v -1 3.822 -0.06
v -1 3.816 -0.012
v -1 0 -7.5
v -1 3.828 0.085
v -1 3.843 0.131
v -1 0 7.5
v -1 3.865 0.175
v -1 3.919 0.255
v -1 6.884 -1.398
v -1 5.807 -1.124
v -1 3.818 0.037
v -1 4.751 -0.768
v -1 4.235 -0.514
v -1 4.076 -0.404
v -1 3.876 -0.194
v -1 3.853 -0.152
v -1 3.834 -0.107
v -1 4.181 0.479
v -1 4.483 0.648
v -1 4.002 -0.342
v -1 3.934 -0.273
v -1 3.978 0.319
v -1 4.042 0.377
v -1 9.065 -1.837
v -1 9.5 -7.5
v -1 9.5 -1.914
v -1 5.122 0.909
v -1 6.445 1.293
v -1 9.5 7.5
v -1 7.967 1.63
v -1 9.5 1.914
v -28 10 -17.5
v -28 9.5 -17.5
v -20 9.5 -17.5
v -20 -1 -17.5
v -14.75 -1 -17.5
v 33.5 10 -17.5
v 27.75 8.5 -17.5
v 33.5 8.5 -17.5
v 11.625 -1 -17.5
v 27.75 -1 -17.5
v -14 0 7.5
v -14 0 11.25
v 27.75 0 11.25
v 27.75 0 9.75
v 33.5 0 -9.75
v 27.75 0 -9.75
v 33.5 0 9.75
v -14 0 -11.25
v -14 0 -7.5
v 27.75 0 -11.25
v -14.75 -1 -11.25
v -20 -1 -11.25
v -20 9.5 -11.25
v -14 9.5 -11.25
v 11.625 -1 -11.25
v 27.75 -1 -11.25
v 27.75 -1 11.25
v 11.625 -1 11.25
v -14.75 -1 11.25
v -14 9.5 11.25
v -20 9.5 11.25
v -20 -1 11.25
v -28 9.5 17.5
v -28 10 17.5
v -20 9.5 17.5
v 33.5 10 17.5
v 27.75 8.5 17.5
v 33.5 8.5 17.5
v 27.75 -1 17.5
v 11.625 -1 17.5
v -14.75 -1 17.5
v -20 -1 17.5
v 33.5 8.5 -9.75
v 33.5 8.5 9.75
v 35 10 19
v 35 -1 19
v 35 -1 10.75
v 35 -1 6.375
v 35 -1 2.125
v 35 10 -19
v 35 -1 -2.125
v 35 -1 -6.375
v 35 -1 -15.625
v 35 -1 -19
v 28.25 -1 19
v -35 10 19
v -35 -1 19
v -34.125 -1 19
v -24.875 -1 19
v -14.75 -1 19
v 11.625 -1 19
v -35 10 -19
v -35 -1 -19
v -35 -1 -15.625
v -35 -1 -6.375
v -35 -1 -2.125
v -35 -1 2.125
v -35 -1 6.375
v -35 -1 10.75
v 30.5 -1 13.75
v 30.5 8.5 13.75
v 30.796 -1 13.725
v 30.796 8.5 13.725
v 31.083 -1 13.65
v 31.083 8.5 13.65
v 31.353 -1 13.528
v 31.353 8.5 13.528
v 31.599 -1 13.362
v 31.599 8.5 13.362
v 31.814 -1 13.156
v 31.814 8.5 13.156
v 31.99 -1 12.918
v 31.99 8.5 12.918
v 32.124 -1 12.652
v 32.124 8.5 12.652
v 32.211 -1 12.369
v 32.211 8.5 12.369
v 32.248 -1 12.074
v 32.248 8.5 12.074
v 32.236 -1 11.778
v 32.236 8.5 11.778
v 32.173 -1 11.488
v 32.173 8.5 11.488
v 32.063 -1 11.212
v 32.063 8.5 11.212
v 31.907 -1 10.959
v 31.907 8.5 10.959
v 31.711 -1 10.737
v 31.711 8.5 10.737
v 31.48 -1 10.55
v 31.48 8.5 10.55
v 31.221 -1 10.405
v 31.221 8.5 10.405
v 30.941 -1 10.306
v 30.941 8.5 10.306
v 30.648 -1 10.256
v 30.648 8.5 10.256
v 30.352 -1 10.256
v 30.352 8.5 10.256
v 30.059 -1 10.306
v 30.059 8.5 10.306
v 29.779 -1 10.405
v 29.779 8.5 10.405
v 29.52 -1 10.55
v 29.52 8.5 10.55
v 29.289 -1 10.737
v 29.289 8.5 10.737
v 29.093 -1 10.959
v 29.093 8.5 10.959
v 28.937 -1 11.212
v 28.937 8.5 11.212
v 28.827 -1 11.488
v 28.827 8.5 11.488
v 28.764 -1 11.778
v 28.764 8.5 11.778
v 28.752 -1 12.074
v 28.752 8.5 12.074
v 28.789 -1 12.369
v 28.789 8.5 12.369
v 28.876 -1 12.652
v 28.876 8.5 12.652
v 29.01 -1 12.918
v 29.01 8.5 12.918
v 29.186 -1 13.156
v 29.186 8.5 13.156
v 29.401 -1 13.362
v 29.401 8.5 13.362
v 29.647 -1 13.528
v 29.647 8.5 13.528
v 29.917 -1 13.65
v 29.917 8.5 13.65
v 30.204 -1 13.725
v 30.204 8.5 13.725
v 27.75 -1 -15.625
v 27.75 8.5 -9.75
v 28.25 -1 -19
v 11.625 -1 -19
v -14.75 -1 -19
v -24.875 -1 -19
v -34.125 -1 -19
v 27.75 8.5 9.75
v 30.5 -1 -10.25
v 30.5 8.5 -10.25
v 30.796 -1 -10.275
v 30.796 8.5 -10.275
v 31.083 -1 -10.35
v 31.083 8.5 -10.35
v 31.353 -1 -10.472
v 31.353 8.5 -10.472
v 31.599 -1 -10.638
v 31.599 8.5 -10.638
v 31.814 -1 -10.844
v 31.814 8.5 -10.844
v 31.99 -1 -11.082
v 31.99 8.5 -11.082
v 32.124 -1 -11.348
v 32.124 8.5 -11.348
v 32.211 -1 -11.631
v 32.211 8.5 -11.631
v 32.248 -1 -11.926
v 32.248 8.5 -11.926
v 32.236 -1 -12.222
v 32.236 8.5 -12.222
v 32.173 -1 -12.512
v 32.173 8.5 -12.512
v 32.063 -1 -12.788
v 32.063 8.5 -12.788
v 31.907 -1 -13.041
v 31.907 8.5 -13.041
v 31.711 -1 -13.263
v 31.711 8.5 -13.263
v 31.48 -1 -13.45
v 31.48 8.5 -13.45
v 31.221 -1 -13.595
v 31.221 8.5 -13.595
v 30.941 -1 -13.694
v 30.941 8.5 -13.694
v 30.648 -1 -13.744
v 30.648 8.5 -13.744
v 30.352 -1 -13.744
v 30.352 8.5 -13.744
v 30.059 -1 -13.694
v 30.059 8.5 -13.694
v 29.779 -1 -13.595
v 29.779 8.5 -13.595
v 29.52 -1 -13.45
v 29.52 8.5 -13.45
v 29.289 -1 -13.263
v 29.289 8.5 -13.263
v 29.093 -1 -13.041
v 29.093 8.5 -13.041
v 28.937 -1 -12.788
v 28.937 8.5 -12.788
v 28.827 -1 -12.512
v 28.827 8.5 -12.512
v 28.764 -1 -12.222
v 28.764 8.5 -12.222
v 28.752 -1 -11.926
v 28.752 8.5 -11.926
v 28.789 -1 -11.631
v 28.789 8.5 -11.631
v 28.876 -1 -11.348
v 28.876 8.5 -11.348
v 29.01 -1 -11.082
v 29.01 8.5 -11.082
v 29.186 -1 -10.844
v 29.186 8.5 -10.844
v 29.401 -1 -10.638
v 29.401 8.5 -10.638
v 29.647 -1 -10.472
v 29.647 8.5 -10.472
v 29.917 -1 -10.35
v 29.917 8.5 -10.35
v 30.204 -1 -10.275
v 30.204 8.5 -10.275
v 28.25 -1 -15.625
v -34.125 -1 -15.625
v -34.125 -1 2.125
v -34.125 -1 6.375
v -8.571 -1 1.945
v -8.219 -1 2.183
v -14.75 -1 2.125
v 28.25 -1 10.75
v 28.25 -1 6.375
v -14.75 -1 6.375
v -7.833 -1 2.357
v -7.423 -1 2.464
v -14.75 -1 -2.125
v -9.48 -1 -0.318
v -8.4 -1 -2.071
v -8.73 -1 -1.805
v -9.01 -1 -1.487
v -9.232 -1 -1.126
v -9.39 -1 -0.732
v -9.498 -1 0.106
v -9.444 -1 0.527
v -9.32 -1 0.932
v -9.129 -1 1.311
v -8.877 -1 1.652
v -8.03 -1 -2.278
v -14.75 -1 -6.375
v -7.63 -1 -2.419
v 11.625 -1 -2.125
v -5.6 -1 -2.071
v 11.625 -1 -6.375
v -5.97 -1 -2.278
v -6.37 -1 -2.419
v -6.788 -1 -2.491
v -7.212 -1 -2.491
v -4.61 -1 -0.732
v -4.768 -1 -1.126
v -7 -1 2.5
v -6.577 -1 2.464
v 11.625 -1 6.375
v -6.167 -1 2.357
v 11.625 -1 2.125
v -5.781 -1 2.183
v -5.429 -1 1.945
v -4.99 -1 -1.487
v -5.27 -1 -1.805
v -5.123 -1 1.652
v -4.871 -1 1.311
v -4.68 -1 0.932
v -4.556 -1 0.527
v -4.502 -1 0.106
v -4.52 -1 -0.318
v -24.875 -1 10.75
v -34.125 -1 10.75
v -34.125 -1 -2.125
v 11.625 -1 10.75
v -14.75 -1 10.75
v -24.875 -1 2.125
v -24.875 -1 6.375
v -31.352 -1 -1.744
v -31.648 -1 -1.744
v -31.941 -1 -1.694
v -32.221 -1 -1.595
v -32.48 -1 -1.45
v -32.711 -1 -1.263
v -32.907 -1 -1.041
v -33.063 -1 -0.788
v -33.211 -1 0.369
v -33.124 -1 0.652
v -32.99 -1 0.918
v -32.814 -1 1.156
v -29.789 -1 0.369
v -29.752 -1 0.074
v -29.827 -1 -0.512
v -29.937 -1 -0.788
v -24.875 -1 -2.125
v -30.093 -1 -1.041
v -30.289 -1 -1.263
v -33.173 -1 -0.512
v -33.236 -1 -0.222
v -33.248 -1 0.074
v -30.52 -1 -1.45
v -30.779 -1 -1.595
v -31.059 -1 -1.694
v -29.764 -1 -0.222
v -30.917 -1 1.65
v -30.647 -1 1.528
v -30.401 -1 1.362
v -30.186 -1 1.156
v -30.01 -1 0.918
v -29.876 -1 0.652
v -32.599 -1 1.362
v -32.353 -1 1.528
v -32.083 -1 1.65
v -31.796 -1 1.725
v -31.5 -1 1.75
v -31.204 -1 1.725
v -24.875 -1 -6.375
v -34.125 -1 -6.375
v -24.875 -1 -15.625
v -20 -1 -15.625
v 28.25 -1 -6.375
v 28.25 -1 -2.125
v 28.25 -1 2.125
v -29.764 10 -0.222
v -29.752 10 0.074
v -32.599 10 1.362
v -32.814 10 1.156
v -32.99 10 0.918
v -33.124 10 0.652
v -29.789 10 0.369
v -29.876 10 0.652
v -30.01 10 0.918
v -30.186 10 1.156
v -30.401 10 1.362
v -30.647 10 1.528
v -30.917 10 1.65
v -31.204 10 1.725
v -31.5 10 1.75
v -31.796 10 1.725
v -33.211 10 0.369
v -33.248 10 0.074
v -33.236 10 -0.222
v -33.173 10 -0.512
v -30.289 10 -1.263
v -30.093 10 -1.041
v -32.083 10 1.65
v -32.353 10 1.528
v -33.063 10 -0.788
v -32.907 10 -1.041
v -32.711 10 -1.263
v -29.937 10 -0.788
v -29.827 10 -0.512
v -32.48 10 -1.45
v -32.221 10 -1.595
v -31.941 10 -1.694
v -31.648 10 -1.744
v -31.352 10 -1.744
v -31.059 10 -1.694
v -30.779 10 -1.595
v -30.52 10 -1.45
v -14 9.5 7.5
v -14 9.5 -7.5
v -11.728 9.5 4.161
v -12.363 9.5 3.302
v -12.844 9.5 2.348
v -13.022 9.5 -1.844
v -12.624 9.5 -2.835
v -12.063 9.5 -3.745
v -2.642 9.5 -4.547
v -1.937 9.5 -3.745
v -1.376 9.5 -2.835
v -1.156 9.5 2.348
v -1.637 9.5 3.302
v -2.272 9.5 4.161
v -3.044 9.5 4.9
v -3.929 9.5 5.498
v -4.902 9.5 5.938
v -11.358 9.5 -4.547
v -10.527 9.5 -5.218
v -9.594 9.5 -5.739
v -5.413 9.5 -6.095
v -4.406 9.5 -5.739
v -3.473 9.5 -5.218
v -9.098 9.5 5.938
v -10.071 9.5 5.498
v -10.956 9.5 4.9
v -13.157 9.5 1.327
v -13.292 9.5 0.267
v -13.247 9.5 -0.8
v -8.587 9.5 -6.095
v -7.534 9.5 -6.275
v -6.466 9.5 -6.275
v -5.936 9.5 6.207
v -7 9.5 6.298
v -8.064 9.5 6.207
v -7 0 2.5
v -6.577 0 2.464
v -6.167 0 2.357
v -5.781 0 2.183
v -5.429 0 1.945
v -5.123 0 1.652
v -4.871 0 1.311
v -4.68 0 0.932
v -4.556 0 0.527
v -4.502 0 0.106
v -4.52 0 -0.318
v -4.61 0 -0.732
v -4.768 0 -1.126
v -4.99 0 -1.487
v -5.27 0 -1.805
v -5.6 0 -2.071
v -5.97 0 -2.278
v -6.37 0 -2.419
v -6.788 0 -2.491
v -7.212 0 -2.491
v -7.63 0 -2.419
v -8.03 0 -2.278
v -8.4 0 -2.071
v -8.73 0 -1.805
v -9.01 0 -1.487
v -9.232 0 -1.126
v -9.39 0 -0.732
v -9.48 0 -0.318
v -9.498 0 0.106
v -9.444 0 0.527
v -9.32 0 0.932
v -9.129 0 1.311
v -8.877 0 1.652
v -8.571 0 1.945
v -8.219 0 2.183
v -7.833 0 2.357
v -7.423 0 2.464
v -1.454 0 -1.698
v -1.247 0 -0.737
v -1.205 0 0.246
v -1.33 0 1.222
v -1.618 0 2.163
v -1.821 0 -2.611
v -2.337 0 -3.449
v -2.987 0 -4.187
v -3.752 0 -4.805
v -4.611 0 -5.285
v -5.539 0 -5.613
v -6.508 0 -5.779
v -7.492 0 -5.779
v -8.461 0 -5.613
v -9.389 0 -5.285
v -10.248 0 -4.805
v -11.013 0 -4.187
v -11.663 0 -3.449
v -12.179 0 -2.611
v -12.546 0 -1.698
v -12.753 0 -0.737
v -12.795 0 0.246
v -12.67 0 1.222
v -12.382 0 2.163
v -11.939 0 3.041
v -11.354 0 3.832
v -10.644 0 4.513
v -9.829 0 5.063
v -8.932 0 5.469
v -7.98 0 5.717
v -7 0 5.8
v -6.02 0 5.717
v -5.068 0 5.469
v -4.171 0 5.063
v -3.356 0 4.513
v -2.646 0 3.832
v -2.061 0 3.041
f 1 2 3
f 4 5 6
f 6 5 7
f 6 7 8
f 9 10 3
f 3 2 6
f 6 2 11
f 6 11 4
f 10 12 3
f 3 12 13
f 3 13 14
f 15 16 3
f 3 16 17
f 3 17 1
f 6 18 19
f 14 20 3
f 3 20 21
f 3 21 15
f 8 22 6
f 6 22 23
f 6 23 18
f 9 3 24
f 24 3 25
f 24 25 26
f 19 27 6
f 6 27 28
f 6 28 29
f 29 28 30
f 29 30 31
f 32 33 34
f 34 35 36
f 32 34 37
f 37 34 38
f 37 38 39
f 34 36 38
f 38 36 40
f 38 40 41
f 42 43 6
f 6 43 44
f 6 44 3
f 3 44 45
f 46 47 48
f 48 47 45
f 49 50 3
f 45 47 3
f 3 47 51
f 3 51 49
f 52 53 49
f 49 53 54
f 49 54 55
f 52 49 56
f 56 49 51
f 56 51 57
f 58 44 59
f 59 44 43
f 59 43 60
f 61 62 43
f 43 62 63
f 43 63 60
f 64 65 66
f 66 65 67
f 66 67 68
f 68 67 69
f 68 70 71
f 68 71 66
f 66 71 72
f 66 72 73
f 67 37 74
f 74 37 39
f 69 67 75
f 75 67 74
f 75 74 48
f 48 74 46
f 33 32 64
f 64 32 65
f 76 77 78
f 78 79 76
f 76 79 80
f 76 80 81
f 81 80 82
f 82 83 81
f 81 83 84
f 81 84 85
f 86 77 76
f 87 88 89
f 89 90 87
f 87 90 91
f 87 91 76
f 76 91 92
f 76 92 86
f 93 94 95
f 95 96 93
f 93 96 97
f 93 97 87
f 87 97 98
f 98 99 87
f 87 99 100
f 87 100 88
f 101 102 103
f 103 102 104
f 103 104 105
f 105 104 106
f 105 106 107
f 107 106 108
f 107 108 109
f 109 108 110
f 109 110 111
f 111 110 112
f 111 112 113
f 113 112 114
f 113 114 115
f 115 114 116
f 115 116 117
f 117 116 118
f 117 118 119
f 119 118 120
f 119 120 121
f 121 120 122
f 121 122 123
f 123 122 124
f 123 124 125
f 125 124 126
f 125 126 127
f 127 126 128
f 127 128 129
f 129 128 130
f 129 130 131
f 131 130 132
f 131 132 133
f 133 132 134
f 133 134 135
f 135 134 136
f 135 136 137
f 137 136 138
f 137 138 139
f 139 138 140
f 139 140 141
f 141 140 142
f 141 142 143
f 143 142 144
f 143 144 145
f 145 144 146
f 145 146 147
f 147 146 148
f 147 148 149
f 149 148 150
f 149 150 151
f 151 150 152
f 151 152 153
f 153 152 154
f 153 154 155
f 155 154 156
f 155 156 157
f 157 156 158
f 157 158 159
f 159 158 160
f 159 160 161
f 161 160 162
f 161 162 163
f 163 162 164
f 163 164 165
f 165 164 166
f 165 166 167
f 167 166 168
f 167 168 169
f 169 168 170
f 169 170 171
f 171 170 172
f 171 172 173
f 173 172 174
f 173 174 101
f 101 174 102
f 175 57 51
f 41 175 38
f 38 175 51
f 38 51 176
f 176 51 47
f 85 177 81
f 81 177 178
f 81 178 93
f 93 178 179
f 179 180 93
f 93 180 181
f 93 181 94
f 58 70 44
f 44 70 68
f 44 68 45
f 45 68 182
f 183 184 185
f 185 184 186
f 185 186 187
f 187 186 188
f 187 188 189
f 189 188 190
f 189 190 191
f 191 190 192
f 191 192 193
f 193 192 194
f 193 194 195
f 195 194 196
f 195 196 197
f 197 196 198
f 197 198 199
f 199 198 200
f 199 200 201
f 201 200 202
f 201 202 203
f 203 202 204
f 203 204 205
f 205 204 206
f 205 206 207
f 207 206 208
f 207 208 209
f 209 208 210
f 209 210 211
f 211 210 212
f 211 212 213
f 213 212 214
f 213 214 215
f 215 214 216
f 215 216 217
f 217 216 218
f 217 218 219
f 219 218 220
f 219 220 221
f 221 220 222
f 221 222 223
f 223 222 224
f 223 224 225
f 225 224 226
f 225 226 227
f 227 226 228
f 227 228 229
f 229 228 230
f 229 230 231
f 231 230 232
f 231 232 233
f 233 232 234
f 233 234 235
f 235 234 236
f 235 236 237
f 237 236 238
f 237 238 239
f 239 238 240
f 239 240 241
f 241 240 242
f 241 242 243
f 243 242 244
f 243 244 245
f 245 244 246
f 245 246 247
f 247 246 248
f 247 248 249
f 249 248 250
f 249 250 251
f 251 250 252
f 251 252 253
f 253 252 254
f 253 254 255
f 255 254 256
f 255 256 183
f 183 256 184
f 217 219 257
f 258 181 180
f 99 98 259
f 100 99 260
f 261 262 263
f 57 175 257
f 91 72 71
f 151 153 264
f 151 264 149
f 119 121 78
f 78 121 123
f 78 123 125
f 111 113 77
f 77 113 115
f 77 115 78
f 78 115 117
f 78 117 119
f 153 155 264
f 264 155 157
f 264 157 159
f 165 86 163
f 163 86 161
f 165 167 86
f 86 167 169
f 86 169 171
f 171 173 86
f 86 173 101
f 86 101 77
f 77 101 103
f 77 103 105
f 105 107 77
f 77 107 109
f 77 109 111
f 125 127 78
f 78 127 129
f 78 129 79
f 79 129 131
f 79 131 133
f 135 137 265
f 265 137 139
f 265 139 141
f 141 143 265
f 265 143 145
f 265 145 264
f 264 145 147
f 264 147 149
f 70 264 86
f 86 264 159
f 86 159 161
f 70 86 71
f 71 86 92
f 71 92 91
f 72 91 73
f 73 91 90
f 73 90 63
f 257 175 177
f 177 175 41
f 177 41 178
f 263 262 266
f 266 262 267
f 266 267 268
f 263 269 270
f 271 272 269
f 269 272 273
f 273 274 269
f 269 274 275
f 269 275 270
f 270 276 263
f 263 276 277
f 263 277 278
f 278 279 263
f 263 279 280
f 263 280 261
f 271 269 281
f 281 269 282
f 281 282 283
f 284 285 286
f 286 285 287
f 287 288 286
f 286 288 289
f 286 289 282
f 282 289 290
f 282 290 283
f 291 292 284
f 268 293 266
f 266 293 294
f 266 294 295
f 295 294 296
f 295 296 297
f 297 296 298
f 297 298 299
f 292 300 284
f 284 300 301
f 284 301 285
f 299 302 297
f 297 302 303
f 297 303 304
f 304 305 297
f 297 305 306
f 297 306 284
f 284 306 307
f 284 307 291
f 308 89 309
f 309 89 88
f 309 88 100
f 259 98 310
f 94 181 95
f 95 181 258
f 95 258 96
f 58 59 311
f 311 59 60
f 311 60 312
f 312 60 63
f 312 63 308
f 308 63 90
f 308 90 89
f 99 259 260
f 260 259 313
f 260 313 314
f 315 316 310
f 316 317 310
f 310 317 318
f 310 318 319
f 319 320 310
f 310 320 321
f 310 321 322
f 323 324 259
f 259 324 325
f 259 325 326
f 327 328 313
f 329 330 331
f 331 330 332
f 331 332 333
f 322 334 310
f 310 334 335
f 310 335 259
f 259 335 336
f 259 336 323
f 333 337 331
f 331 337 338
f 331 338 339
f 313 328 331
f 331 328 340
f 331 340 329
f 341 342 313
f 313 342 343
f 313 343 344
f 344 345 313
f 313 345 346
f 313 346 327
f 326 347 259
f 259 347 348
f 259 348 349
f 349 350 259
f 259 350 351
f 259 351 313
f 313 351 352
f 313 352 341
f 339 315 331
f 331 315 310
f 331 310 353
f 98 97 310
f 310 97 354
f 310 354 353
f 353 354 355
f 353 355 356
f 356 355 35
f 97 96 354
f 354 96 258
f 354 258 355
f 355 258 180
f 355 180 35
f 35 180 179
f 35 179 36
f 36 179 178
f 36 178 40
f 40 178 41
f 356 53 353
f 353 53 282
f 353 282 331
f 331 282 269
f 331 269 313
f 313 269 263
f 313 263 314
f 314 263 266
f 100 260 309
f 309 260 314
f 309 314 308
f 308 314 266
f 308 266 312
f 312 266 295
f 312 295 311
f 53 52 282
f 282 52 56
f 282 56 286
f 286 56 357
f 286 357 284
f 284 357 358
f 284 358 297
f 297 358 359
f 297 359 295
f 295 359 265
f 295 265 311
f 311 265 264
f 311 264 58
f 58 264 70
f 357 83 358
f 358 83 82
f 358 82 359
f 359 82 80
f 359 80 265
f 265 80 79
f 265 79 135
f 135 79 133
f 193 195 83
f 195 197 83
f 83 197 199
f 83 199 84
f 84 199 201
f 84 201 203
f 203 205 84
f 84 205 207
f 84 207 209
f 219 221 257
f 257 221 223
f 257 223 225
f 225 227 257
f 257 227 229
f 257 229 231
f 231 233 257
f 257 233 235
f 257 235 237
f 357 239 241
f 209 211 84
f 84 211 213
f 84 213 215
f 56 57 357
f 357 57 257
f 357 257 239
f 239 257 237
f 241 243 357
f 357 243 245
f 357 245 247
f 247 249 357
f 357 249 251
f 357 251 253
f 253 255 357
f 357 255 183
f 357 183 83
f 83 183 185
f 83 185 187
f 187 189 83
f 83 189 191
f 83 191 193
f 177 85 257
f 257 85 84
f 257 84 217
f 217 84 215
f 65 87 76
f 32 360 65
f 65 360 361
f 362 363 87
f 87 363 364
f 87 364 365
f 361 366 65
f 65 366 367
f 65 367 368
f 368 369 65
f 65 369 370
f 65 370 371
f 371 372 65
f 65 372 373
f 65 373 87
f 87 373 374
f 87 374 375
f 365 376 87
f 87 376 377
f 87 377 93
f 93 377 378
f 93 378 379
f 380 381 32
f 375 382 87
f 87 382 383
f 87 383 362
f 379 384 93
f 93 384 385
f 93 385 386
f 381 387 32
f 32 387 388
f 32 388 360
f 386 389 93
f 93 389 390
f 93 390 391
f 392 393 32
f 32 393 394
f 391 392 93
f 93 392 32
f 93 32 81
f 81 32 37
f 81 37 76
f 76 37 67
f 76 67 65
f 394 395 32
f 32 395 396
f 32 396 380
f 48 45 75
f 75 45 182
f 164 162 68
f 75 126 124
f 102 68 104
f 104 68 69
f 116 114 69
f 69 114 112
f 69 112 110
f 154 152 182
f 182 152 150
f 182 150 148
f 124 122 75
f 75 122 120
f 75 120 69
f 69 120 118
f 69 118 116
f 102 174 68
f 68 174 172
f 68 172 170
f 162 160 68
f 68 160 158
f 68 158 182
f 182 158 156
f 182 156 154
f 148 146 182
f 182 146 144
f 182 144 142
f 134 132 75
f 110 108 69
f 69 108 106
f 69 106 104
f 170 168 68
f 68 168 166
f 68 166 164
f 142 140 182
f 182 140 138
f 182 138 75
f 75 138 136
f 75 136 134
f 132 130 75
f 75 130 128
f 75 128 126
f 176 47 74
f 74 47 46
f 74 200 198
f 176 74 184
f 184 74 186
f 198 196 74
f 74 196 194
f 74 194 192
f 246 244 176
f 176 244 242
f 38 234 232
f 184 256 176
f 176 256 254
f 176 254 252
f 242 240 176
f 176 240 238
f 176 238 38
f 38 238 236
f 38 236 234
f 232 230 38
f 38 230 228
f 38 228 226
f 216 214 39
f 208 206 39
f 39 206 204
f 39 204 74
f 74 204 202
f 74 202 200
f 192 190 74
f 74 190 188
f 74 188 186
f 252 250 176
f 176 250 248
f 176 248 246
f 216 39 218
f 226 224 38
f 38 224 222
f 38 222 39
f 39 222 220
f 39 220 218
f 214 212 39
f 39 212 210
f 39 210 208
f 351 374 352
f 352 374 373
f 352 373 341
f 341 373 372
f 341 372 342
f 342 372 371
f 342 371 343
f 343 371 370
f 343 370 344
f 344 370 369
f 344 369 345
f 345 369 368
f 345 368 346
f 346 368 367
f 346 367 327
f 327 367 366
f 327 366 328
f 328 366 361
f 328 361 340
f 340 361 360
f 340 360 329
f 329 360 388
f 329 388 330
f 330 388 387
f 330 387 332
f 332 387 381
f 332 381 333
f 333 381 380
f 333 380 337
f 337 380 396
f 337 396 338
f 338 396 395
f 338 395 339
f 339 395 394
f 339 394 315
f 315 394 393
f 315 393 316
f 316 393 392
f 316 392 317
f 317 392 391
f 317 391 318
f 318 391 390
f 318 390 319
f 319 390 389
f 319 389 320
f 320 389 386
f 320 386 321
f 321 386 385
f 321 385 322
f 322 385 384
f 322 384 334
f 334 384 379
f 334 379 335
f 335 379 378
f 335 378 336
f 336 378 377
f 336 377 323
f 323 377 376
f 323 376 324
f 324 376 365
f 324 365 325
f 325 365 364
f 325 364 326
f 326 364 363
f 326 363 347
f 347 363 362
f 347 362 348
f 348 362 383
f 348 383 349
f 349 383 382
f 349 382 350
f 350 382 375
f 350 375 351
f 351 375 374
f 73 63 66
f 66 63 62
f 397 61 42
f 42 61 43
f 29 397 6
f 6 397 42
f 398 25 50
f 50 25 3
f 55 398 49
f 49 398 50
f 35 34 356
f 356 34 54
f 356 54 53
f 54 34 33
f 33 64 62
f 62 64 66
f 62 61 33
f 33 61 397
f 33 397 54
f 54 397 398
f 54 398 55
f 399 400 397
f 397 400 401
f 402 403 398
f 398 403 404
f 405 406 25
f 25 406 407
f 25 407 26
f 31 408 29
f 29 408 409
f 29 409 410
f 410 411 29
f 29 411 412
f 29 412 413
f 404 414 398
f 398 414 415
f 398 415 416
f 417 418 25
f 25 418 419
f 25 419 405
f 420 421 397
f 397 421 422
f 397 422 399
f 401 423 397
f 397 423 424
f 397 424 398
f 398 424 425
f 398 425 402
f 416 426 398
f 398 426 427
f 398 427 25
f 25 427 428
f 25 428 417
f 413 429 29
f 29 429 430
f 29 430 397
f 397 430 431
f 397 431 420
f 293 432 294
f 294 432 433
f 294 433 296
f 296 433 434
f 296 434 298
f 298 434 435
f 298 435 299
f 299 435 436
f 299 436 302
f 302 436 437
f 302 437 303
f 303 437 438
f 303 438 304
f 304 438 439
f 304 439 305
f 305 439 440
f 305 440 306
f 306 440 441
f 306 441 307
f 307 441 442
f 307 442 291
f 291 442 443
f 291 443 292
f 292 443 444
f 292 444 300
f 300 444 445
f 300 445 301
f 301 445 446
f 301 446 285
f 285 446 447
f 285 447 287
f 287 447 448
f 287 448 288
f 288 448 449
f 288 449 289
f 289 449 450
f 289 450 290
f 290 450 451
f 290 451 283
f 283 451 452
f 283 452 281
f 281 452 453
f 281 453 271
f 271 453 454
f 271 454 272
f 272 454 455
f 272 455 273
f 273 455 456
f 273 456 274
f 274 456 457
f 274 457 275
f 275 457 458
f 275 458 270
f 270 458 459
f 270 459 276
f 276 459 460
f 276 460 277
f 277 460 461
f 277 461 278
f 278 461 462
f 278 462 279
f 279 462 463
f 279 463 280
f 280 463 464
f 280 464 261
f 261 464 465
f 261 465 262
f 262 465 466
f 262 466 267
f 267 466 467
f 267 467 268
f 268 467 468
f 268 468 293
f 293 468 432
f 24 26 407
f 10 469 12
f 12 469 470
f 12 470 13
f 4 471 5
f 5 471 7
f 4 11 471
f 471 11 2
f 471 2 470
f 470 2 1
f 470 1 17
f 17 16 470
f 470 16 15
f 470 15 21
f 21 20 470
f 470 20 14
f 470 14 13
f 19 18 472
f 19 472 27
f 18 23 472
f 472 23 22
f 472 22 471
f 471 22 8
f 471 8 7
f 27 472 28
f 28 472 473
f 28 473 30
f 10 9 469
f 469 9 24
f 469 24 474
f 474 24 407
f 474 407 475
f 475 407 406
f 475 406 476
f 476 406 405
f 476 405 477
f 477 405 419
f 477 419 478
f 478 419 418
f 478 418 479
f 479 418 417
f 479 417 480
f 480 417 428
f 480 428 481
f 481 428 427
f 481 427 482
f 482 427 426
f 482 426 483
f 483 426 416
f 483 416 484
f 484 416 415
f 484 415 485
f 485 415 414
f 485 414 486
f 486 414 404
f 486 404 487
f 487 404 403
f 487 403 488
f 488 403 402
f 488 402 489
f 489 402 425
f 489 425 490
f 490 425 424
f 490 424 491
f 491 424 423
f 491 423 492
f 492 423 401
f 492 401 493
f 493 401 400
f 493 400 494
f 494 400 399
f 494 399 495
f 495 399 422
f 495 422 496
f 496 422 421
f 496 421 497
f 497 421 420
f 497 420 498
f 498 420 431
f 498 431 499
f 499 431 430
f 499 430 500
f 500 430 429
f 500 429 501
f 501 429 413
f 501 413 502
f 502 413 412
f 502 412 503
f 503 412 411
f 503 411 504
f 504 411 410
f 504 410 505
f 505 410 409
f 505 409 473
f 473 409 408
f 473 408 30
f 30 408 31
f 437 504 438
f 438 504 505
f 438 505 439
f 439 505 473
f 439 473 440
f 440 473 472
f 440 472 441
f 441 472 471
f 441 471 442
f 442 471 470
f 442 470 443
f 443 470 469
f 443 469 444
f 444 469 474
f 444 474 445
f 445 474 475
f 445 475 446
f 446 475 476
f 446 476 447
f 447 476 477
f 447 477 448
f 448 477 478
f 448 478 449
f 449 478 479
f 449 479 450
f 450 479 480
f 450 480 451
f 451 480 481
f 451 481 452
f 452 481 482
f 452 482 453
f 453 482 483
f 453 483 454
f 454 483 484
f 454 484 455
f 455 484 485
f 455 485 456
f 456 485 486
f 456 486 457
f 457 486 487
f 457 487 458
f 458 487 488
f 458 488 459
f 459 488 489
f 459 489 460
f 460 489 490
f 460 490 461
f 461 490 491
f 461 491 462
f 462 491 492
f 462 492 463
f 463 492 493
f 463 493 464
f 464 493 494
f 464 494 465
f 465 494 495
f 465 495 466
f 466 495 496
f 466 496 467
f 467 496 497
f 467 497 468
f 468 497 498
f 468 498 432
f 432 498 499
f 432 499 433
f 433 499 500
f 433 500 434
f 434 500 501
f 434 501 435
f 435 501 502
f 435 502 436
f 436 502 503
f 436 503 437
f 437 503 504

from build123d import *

# Parameters (mm, degrees)
SKETCH2_W               = 70
SKETCH2_H               = 38
SKETCH2_W_2             = 61.5
SKETCH2_H_2             = 35
SKETCH2_R               = 1.75
BOSS_EXTRUDE1_DEPTH     = 1
SKETCH2_3_W             = 70
SKETCH2_3_H             = 38
SKETCH2_3_W_2           = 61.5
SKETCH2_3_H_2           = 35
BOSS_EXTRUDE2_DEPTH     = 10
BOSS_EXTRUDE3_START     = 8.5
SKETCH2_4_R             = 1.75
BOSS_EXTRUDE3_DEPTH     = 8.5
CUT_EXTRUDE1_DEPTH      = 42.31585652
CUT_EXTRUDE1_DEPTH_BACK = 42.31585652
SKETCH3_R               = 1.75
BOSS_EXTRUDE4_DEPTH     = 10.5
SKETCH5_R               = 2.5
CUT_EXTRUDE2_DEPTH      = 1
SKETCH5_3_R             = 5.8
CUT_EXTRUDE3_DEPTH      = 42.060930335
CUT_EXTRUDE3_DRAFT      = -3


with BuildPart() as part:
    # Sketch2 → Boss-Extrude1 (new body)
    # profile 1 of 4: a face of its own
    with BuildSketch(Plane(origin=(0, 0, 0), x_dir=(1, 0, 0), z_dir=(0, 1, 0))):
        Rectangle(SKETCH2_W, SKETCH2_H)
        with Locations((2.75, 0)):
            Rectangle(SKETCH2_W_2, SKETCH2_H_2, mode=Mode.SUBTRACT)
    # profile 2 of 4: a face of its own
    with BuildSketch(Plane(origin=(0, 0, 0), x_dir=(1, 0, 0), z_dir=(0, 1, 0))):
        Polygon((27.75, 11.25), (-28, 11.25), (-28, -11.25), (27.75, -11.25), (27.75, -9.75), (33.5, -9.75), (33.5, 9.75), (27.75, 9.75), align=None)
    # profile 3 of 4: a face of its own
    with BuildSketch(Plane(origin=(0, 0, 0), x_dir=(1, 0, 0), z_dir=(0, 1, 0))):
        Polygon((33.5, 17.5), (27.75, 17.5), (27.75, 11.25), (27.75, 9.75), (33.5, 9.75), align=None)
        with Locations(Location((30.5, 12, 0), (0, 0, 270))):
            Circle(SKETCH2_R, mode=Mode.SUBTRACT)
    # profile 4 of 4: a face of its own
    with BuildSketch(Plane(origin=(0, 0, 0), x_dir=(1, 0, 0), z_dir=(0, 1, 0))):
        Polygon((27.75, -9.75), (27.75, -11.25), (27.75, -17.5), (33.5, -17.5), (33.5, -9.75), align=None)
        with Locations(Location((30.5, -12, 0), (0, 0, 270))):
            Circle(SKETCH2_R, mode=Mode.SUBTRACT)
    extrude(amount=-BOSS_EXTRUDE1_DEPTH)

    # Sketch2<3> → Boss-Extrude2 (add)
    with BuildSketch(Plane(origin=(0, 0, 0), x_dir=(1, 0, 0), z_dir=(0, 1, 0))):
        Rectangle(SKETCH2_3_W, SKETCH2_3_H)
        with Locations((2.75, 0)):
            Rectangle(SKETCH2_3_W_2, SKETCH2_3_H_2, mode=Mode.SUBTRACT)
    extrude(amount=BOSS_EXTRUDE2_DEPTH)

    # Sketch2<4> → Boss-Extrude3 (add)
    # profile 1 of 2: a face of its own
    with BuildSketch(Plane(origin=(0, 0, 0), x_dir=(1, 0, 0), z_dir=(0, 1, 0)).offset(BOSS_EXTRUDE3_START)):
        Polygon((33.5, 17.5), (27.75, 17.5), (27.75, 11.25), (27.75, 9.75), (33.5, 9.75), align=None)
        with Locations(Location((30.5, 12, 0), (0, 0, 270))):
            Circle(SKETCH2_4_R, mode=Mode.SUBTRACT)
    # profile 2 of 2: a face of its own
    with BuildSketch(Plane(origin=(0, 0, 0), x_dir=(1, 0, 0), z_dir=(0, 1, 0)).offset(BOSS_EXTRUDE3_START)):
        Polygon((27.75, -9.75), (27.75, -11.25), (27.75, -17.5), (33.5, -17.5), (33.5, -9.75), align=None)
        with Locations(Location((30.5, -12, 0), (0, 0, 270))):
            Circle(SKETCH2_4_R, mode=Mode.SUBTRACT)
    extrude(amount=-BOSS_EXTRUDE3_DEPTH)

    # Sketch3 → Cut-Extrude1 (cut, two sides: drawn at the far end of the back side and taken through both)
    with BuildSketch(Plane(origin=(0, 10, 0), x_dir=(1, 0, 0), z_dir=(0, 1, 0)).offset(-CUT_EXTRUDE1_DEPTH_BACK)):
        with Locations(Location((30.5, -12, 0), (0, 0, 270))):
            Circle(SKETCH3_R)
        with Locations(Location((30.5, 12, 0), (0, 0, 270))):
            Circle(SKETCH3_R)
        with Locations(Location((-31.5, 0, 0), (0, 0, 270))):
            Circle(SKETCH3_R)
    extrude(amount=CUT_EXTRUDE1_DEPTH + CUT_EXTRUDE1_DEPTH_BACK, mode=Mode.SUBTRACT)

    # Sketch4 → Boss-Extrude4 (add)
    with BuildSketch(Plane(origin=(0, -1, 0), x_dir=(1, 0, 0), z_dir=(0, 1, 0))):
        Polygon((-28, 17.5), (-20, 17.5), (-20, 11.25), (-14, 11.25), (-14, 7.5), (-1, 7.5), (-1, -7.5), (-14, -7.5), (-14, -11.25), (-20, -11.25), (-20, -17.5), (-28, -17.5), align=None)
    extrude(amount=BOSS_EXTRUDE4_DEPTH)

    # Sketch5 → Cut-Extrude2 (cut)
    with BuildSketch(Plane(origin=(0, 0, 0), x_dir=(1, 0, 0), z_dir=(0, 1, 0))):
        with Locations(Location((-7, 0, 0), (0, 0, 270))):
            Circle(SKETCH5_R)
    extrude(amount=-CUT_EXTRUDE2_DEPTH, mode=Mode.SUBTRACT)


with BuildPart() as cut_extrude3_tool:
    # Sketch5<3> → Cut-Extrude3 (with draft: the straight prism first)
    with BuildSketch(Plane(origin=(0, 0, 0), x_dir=(1, 0, 0), z_dir=(0, 1, 0))):
        with Locations((-7, 0)):
            Circle(SKETCH5_3_R)
    extrude(amount=CUT_EXTRUDE3_DEPTH)
    # Cut-Extrude3: the draft: its side faces are tilted about the plane it starts from
    cut_extrude3_sides = [cut_extrude3_tool.faces().sort_by_distance(p)[0] for p in [
        (-12.8, 21.030465168, 0),
    ]]
    draft(cut_extrude3_sides, Plane(origin=(0, 0, 0), x_dir=(1, 0, 0), z_dir=(0, 1, 0)), CUT_EXTRUDE3_DRAFT)


with BuildPart() as part_1:
    add(part.part)

    # Cut-Extrude3: cut by cut_extrude3_tool
    add(cut_extrude3_tool.part, mode=Mode.SUBTRACT)


solid = part_1.part
